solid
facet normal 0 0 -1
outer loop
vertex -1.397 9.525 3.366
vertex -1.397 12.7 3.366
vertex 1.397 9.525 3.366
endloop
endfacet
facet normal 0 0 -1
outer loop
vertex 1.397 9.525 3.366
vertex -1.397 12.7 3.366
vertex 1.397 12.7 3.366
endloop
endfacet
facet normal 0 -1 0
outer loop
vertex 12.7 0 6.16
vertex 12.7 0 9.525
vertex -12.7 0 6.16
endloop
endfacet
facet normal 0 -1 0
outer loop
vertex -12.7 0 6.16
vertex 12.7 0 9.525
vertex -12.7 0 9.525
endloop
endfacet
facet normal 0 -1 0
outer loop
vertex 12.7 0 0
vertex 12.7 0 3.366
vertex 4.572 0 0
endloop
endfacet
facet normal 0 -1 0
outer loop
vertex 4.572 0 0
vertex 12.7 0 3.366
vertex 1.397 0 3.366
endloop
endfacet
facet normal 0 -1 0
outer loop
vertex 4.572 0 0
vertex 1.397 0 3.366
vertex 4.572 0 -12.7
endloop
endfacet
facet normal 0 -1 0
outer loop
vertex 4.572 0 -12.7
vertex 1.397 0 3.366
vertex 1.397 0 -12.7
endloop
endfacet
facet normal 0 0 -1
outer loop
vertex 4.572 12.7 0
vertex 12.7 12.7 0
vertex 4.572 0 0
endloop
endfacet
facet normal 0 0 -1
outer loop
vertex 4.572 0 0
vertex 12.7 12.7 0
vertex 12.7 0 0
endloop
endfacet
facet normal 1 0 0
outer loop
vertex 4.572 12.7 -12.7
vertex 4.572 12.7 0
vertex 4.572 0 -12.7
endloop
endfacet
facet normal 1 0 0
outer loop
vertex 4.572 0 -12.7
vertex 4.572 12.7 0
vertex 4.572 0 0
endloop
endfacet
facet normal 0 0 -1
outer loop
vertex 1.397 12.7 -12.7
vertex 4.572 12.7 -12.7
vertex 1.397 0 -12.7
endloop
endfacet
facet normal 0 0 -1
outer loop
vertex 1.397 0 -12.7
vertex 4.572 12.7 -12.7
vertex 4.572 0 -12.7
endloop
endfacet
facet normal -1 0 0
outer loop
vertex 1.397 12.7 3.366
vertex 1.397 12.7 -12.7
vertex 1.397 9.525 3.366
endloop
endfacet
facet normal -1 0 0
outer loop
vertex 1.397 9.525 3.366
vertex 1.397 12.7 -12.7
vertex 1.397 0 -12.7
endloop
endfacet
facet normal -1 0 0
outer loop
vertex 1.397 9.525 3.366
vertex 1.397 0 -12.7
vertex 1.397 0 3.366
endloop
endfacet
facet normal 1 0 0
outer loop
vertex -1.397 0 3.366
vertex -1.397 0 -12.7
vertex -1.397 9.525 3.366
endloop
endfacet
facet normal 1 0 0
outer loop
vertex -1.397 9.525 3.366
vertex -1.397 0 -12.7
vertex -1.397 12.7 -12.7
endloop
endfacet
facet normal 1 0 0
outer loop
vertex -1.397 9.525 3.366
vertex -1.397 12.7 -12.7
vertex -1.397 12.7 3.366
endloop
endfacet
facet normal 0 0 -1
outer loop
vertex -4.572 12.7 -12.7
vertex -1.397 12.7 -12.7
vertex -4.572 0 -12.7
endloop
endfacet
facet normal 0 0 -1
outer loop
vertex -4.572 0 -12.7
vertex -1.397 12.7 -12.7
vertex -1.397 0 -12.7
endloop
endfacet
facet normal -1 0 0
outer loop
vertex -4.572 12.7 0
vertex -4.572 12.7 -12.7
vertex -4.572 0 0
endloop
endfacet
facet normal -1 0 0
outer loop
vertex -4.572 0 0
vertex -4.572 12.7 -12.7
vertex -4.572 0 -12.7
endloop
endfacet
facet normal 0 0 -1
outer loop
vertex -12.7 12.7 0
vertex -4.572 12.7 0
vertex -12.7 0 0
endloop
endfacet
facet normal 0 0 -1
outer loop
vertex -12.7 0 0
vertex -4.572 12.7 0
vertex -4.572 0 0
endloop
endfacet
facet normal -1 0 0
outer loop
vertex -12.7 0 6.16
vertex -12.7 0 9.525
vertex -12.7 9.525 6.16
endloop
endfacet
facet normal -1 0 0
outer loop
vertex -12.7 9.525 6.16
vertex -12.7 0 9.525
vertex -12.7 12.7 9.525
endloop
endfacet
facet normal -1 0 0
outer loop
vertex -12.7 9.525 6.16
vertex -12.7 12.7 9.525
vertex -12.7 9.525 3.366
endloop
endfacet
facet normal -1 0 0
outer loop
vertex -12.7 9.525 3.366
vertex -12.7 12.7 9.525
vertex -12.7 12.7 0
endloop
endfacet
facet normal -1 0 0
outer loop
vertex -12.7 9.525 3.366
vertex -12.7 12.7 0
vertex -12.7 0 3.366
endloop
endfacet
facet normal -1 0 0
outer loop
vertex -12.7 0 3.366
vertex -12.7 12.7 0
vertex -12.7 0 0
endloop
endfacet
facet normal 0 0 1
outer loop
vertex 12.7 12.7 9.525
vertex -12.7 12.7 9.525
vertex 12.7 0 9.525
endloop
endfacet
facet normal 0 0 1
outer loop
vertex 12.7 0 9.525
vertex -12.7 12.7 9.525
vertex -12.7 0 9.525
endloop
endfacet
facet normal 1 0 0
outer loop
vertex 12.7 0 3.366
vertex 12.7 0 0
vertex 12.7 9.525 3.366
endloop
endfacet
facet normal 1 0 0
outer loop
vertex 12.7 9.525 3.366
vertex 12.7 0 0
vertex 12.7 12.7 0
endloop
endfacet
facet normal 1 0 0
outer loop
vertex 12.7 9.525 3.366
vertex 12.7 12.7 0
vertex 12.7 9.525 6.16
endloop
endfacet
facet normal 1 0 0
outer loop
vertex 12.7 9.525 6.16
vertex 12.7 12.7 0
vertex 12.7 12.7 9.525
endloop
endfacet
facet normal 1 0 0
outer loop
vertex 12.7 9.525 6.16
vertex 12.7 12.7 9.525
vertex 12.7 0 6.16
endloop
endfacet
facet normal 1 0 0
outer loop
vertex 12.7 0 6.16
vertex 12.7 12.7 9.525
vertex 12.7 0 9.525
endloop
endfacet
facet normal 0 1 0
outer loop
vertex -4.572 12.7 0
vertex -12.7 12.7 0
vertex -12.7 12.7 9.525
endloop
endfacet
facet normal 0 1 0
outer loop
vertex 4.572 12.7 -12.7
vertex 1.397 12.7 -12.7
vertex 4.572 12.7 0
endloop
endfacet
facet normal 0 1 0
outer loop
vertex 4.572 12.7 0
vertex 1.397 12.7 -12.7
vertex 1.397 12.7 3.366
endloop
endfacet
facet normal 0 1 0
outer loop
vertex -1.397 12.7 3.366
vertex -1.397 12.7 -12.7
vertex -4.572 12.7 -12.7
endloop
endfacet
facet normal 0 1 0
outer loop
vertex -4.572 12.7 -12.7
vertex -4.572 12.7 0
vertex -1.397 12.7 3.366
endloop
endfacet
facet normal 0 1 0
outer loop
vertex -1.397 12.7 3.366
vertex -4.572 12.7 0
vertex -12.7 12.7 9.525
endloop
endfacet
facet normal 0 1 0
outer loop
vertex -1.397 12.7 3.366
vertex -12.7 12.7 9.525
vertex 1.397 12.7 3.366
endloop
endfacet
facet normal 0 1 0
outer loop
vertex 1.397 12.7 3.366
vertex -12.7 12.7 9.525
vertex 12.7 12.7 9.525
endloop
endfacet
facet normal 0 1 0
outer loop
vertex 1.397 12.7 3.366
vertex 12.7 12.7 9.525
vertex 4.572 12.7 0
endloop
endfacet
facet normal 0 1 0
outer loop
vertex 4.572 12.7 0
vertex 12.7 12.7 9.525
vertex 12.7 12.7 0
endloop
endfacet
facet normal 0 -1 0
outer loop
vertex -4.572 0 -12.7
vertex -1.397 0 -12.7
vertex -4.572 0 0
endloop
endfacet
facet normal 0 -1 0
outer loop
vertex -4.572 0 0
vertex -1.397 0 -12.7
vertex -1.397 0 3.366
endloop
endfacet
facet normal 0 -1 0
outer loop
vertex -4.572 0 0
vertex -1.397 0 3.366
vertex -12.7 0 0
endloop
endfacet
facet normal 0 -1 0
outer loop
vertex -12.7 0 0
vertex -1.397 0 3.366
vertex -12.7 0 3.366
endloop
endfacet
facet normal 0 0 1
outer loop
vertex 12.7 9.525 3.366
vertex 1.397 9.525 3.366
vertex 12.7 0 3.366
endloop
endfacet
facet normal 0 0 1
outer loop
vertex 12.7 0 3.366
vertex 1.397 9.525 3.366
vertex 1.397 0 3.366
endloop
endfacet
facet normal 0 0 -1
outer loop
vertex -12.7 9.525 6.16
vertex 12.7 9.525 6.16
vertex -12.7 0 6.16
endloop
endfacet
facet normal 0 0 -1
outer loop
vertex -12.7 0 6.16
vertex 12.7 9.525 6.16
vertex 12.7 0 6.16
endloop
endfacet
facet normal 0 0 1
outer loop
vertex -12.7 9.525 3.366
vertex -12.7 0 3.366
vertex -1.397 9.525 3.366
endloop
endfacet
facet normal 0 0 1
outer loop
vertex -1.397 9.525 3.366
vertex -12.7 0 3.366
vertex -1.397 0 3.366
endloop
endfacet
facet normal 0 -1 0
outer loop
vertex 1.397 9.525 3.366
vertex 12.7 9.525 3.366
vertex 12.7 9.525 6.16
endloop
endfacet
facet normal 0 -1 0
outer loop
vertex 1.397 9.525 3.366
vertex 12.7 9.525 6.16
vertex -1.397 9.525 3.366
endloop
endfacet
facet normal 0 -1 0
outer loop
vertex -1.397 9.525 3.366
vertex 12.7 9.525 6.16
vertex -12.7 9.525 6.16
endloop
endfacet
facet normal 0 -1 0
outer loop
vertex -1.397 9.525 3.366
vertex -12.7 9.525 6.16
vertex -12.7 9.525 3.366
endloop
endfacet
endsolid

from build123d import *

# Parameters (mm, degrees)
BOSS_EXTRUDE1_DEPTH = 12.7
SKETCH3_W           = 25.4
SKETCH3_H           = 2.794
CUT_EXTRUDE1_DEPTH  = 9.525


with BuildPart() as part:
    # Sketch2 → Boss-Extrude1 (new body)
    with BuildSketch(Plane(origin=(0, 0, 0), x_dir=(1, 0, 0), z_dir=(0, 1, 0))):
        Polygon((-4.572, 0), (-12.7, 0), (-12.7, -9.525), (12.7, -9.525), (12.7, 0), (4.572, 0), (4.572, 12.7), (1.397, 12.7), (1.397, -3.3655), (-1.397, -3.3655), (-1.397, 12.7), (-4.572, 12.7), align=None)
    extrude(amount=BOSS_EXTRUDE1_DEPTH)

    # Sketch3 → Cut-Extrude1 (cut)
    with BuildSketch(Plane.XZ):
        with Locations((0, 4.7625)):
            Rectangle(SKETCH3_W, SKETCH3_H)
    extrude(amount=-CUT_EXTRUDE1_DEPTH, mode=Mode.SUBTRACT)


solid = part.part
